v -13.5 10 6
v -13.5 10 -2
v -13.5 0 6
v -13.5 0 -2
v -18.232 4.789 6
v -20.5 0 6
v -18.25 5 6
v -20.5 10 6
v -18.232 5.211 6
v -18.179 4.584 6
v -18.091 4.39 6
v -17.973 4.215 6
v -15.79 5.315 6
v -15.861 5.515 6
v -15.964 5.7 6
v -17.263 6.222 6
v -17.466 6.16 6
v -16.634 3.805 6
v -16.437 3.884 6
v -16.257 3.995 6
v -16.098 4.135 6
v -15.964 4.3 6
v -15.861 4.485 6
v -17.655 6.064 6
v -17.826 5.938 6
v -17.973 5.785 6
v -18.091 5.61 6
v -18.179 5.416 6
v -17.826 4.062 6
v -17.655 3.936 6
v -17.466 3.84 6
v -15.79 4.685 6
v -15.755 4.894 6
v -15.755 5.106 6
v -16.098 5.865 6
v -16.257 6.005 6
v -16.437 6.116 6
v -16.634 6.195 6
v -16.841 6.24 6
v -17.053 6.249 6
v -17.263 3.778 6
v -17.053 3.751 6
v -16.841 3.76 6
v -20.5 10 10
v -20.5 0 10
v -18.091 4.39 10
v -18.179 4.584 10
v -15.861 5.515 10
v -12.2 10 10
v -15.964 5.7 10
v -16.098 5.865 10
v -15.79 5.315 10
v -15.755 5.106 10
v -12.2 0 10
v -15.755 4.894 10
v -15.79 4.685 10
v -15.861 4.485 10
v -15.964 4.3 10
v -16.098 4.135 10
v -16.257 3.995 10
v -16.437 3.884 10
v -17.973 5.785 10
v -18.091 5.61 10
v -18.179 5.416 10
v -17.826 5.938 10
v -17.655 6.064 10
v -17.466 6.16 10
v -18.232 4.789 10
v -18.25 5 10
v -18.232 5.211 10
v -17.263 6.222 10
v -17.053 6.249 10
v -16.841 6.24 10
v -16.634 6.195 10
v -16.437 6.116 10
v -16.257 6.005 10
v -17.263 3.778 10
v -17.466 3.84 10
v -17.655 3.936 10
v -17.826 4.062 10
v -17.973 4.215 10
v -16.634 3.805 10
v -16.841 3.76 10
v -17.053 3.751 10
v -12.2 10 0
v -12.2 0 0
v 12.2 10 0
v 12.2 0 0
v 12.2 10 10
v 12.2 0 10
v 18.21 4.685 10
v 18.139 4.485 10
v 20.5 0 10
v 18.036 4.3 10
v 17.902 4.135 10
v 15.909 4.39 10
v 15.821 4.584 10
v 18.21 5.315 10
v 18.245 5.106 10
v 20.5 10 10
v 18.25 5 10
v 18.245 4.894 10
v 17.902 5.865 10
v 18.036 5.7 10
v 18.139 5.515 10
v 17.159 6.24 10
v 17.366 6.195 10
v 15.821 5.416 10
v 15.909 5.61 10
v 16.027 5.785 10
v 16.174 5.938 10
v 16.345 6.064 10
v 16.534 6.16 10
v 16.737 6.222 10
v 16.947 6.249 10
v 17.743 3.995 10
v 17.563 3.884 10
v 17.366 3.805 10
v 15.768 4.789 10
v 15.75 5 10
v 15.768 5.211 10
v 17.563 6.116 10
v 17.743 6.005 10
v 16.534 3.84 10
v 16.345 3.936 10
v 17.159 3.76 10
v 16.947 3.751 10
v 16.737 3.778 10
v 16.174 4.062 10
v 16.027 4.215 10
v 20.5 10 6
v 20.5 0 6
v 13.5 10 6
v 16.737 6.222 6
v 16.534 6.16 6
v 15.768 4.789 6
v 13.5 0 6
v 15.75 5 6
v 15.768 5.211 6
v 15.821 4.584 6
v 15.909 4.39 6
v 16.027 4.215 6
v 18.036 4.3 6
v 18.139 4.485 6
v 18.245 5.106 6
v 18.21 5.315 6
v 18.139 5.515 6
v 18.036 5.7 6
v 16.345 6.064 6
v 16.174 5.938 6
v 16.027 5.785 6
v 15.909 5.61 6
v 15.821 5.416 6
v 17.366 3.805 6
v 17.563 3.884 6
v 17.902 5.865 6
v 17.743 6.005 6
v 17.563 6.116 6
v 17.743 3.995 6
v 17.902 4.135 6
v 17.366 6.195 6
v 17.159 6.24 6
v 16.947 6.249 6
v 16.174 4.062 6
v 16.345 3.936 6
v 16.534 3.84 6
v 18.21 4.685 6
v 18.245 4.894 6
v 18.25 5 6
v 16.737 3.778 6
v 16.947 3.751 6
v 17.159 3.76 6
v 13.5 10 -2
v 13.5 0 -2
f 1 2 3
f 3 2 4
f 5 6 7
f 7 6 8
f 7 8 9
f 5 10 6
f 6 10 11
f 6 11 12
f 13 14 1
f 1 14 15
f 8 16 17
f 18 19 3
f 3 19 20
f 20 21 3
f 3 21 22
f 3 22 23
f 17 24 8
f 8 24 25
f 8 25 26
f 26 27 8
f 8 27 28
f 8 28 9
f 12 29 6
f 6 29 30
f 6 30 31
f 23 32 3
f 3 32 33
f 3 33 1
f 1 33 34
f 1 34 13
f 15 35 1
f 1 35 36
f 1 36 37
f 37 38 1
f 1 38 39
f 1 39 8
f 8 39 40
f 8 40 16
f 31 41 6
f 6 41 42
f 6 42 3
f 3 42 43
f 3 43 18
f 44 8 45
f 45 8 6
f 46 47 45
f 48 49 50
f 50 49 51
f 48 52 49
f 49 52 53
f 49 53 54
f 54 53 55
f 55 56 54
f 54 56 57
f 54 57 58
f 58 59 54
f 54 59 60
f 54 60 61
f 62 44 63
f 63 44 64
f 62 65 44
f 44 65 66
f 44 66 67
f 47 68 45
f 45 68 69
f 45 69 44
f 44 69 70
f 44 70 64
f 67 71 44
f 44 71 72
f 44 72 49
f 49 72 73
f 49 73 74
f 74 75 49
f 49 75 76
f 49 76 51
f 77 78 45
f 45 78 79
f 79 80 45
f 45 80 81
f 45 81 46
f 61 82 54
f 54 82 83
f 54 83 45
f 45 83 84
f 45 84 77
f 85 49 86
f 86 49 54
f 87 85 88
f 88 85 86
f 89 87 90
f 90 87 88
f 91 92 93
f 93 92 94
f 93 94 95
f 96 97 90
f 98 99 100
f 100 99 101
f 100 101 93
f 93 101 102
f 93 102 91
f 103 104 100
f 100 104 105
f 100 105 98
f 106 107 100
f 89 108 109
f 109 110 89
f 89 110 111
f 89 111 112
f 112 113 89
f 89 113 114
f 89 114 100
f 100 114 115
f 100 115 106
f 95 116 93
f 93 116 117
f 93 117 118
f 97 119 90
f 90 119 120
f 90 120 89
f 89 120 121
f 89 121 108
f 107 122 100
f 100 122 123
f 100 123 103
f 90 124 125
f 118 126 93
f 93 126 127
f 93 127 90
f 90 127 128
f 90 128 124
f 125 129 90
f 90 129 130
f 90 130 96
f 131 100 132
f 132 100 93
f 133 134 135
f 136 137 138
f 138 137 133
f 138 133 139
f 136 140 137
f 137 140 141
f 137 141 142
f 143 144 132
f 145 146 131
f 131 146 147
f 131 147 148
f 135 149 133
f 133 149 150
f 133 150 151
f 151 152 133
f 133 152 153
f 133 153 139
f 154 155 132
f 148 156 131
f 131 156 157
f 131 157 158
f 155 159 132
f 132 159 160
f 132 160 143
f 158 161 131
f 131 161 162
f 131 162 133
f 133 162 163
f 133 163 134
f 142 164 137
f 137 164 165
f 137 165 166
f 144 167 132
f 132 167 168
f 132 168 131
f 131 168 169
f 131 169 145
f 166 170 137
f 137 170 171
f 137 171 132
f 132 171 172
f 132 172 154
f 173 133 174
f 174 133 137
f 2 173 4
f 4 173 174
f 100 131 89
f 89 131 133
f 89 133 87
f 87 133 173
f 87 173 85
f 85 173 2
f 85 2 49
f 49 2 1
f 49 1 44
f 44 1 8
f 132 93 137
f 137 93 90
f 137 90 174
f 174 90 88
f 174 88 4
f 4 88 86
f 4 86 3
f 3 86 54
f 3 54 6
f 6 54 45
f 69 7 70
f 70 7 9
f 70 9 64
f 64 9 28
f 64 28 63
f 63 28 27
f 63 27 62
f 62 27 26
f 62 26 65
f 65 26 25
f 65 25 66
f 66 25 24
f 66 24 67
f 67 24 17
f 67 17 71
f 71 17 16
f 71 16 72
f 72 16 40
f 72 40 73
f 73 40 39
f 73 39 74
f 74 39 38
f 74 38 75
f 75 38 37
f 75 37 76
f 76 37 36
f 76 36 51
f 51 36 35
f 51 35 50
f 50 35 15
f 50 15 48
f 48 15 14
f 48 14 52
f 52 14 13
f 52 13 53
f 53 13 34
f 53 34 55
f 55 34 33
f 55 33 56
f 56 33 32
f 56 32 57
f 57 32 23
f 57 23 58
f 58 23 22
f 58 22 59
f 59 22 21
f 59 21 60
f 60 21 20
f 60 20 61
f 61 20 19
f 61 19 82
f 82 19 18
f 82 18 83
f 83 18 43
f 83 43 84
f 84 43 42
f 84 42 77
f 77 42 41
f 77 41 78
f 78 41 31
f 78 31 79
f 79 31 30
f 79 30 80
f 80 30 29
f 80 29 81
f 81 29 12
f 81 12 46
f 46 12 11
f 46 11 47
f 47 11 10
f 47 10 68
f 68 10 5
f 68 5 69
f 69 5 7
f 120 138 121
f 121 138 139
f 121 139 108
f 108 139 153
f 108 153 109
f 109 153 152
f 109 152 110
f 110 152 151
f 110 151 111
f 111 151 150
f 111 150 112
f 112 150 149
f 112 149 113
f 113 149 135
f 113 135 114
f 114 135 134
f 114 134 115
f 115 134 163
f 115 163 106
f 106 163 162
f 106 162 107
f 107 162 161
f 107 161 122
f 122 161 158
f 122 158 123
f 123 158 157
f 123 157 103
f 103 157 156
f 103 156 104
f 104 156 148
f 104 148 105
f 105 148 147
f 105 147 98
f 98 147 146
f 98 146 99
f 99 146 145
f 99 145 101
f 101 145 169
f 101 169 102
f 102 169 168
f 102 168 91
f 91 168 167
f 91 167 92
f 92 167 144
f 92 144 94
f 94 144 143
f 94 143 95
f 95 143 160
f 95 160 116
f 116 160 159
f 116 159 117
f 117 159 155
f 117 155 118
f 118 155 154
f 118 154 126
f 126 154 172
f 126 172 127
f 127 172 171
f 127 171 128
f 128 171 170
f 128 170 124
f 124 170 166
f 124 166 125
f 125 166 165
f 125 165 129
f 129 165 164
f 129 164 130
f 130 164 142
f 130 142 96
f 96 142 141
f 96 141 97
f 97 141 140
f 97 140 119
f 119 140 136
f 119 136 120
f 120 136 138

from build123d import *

# Parameters (mm, degrees)
EXTRUDE_1_DEPTH     = 10
SKETCH_3_R          = 1.25
CUT_EXTRUDE_2_DEPTH = 4


with BuildPart() as part:
    # Эскиз1 → Бобышка-Вытянуть1 (new body)
    with BuildSketch(Plane(origin=(0, 0, 0), x_dir=(1, 0, 0), z_dir=(0, 1, 0))):
        Polygon((-13.5, 2), (13.5, 2), (13.5, -6), (20.5, -6), (20.5, -10), (12.2, -10), (12.2, 0), (-12.2, 0), (-12.2, -10), (-20.5, -10), (-20.5, -6), (-13.5, -6), align=None)
    extrude(amount=EXTRUDE_1_DEPTH)

    # Эскиз3 → Вырез-Вытянуть2 (cut)
    with BuildSketch(Plane(origin=(0, 0, 6), x_dir=(-1, 0, 0), z_dir=(0, 0, -1))):
        with Locations((17, 5)):
            Circle(SKETCH_3_R)
    cut_extrude_2 = extrude(amount=-CUT_EXTRUDE_2_DEPTH, mode=Mode.SUBTRACT)

    # Зеркальное отражение1: Вырез-Вытянуть2 across plane
    add(cut_extrude_2.mirror(Plane.ZY), mode=Mode.SUBTRACT)


solid = part.part
